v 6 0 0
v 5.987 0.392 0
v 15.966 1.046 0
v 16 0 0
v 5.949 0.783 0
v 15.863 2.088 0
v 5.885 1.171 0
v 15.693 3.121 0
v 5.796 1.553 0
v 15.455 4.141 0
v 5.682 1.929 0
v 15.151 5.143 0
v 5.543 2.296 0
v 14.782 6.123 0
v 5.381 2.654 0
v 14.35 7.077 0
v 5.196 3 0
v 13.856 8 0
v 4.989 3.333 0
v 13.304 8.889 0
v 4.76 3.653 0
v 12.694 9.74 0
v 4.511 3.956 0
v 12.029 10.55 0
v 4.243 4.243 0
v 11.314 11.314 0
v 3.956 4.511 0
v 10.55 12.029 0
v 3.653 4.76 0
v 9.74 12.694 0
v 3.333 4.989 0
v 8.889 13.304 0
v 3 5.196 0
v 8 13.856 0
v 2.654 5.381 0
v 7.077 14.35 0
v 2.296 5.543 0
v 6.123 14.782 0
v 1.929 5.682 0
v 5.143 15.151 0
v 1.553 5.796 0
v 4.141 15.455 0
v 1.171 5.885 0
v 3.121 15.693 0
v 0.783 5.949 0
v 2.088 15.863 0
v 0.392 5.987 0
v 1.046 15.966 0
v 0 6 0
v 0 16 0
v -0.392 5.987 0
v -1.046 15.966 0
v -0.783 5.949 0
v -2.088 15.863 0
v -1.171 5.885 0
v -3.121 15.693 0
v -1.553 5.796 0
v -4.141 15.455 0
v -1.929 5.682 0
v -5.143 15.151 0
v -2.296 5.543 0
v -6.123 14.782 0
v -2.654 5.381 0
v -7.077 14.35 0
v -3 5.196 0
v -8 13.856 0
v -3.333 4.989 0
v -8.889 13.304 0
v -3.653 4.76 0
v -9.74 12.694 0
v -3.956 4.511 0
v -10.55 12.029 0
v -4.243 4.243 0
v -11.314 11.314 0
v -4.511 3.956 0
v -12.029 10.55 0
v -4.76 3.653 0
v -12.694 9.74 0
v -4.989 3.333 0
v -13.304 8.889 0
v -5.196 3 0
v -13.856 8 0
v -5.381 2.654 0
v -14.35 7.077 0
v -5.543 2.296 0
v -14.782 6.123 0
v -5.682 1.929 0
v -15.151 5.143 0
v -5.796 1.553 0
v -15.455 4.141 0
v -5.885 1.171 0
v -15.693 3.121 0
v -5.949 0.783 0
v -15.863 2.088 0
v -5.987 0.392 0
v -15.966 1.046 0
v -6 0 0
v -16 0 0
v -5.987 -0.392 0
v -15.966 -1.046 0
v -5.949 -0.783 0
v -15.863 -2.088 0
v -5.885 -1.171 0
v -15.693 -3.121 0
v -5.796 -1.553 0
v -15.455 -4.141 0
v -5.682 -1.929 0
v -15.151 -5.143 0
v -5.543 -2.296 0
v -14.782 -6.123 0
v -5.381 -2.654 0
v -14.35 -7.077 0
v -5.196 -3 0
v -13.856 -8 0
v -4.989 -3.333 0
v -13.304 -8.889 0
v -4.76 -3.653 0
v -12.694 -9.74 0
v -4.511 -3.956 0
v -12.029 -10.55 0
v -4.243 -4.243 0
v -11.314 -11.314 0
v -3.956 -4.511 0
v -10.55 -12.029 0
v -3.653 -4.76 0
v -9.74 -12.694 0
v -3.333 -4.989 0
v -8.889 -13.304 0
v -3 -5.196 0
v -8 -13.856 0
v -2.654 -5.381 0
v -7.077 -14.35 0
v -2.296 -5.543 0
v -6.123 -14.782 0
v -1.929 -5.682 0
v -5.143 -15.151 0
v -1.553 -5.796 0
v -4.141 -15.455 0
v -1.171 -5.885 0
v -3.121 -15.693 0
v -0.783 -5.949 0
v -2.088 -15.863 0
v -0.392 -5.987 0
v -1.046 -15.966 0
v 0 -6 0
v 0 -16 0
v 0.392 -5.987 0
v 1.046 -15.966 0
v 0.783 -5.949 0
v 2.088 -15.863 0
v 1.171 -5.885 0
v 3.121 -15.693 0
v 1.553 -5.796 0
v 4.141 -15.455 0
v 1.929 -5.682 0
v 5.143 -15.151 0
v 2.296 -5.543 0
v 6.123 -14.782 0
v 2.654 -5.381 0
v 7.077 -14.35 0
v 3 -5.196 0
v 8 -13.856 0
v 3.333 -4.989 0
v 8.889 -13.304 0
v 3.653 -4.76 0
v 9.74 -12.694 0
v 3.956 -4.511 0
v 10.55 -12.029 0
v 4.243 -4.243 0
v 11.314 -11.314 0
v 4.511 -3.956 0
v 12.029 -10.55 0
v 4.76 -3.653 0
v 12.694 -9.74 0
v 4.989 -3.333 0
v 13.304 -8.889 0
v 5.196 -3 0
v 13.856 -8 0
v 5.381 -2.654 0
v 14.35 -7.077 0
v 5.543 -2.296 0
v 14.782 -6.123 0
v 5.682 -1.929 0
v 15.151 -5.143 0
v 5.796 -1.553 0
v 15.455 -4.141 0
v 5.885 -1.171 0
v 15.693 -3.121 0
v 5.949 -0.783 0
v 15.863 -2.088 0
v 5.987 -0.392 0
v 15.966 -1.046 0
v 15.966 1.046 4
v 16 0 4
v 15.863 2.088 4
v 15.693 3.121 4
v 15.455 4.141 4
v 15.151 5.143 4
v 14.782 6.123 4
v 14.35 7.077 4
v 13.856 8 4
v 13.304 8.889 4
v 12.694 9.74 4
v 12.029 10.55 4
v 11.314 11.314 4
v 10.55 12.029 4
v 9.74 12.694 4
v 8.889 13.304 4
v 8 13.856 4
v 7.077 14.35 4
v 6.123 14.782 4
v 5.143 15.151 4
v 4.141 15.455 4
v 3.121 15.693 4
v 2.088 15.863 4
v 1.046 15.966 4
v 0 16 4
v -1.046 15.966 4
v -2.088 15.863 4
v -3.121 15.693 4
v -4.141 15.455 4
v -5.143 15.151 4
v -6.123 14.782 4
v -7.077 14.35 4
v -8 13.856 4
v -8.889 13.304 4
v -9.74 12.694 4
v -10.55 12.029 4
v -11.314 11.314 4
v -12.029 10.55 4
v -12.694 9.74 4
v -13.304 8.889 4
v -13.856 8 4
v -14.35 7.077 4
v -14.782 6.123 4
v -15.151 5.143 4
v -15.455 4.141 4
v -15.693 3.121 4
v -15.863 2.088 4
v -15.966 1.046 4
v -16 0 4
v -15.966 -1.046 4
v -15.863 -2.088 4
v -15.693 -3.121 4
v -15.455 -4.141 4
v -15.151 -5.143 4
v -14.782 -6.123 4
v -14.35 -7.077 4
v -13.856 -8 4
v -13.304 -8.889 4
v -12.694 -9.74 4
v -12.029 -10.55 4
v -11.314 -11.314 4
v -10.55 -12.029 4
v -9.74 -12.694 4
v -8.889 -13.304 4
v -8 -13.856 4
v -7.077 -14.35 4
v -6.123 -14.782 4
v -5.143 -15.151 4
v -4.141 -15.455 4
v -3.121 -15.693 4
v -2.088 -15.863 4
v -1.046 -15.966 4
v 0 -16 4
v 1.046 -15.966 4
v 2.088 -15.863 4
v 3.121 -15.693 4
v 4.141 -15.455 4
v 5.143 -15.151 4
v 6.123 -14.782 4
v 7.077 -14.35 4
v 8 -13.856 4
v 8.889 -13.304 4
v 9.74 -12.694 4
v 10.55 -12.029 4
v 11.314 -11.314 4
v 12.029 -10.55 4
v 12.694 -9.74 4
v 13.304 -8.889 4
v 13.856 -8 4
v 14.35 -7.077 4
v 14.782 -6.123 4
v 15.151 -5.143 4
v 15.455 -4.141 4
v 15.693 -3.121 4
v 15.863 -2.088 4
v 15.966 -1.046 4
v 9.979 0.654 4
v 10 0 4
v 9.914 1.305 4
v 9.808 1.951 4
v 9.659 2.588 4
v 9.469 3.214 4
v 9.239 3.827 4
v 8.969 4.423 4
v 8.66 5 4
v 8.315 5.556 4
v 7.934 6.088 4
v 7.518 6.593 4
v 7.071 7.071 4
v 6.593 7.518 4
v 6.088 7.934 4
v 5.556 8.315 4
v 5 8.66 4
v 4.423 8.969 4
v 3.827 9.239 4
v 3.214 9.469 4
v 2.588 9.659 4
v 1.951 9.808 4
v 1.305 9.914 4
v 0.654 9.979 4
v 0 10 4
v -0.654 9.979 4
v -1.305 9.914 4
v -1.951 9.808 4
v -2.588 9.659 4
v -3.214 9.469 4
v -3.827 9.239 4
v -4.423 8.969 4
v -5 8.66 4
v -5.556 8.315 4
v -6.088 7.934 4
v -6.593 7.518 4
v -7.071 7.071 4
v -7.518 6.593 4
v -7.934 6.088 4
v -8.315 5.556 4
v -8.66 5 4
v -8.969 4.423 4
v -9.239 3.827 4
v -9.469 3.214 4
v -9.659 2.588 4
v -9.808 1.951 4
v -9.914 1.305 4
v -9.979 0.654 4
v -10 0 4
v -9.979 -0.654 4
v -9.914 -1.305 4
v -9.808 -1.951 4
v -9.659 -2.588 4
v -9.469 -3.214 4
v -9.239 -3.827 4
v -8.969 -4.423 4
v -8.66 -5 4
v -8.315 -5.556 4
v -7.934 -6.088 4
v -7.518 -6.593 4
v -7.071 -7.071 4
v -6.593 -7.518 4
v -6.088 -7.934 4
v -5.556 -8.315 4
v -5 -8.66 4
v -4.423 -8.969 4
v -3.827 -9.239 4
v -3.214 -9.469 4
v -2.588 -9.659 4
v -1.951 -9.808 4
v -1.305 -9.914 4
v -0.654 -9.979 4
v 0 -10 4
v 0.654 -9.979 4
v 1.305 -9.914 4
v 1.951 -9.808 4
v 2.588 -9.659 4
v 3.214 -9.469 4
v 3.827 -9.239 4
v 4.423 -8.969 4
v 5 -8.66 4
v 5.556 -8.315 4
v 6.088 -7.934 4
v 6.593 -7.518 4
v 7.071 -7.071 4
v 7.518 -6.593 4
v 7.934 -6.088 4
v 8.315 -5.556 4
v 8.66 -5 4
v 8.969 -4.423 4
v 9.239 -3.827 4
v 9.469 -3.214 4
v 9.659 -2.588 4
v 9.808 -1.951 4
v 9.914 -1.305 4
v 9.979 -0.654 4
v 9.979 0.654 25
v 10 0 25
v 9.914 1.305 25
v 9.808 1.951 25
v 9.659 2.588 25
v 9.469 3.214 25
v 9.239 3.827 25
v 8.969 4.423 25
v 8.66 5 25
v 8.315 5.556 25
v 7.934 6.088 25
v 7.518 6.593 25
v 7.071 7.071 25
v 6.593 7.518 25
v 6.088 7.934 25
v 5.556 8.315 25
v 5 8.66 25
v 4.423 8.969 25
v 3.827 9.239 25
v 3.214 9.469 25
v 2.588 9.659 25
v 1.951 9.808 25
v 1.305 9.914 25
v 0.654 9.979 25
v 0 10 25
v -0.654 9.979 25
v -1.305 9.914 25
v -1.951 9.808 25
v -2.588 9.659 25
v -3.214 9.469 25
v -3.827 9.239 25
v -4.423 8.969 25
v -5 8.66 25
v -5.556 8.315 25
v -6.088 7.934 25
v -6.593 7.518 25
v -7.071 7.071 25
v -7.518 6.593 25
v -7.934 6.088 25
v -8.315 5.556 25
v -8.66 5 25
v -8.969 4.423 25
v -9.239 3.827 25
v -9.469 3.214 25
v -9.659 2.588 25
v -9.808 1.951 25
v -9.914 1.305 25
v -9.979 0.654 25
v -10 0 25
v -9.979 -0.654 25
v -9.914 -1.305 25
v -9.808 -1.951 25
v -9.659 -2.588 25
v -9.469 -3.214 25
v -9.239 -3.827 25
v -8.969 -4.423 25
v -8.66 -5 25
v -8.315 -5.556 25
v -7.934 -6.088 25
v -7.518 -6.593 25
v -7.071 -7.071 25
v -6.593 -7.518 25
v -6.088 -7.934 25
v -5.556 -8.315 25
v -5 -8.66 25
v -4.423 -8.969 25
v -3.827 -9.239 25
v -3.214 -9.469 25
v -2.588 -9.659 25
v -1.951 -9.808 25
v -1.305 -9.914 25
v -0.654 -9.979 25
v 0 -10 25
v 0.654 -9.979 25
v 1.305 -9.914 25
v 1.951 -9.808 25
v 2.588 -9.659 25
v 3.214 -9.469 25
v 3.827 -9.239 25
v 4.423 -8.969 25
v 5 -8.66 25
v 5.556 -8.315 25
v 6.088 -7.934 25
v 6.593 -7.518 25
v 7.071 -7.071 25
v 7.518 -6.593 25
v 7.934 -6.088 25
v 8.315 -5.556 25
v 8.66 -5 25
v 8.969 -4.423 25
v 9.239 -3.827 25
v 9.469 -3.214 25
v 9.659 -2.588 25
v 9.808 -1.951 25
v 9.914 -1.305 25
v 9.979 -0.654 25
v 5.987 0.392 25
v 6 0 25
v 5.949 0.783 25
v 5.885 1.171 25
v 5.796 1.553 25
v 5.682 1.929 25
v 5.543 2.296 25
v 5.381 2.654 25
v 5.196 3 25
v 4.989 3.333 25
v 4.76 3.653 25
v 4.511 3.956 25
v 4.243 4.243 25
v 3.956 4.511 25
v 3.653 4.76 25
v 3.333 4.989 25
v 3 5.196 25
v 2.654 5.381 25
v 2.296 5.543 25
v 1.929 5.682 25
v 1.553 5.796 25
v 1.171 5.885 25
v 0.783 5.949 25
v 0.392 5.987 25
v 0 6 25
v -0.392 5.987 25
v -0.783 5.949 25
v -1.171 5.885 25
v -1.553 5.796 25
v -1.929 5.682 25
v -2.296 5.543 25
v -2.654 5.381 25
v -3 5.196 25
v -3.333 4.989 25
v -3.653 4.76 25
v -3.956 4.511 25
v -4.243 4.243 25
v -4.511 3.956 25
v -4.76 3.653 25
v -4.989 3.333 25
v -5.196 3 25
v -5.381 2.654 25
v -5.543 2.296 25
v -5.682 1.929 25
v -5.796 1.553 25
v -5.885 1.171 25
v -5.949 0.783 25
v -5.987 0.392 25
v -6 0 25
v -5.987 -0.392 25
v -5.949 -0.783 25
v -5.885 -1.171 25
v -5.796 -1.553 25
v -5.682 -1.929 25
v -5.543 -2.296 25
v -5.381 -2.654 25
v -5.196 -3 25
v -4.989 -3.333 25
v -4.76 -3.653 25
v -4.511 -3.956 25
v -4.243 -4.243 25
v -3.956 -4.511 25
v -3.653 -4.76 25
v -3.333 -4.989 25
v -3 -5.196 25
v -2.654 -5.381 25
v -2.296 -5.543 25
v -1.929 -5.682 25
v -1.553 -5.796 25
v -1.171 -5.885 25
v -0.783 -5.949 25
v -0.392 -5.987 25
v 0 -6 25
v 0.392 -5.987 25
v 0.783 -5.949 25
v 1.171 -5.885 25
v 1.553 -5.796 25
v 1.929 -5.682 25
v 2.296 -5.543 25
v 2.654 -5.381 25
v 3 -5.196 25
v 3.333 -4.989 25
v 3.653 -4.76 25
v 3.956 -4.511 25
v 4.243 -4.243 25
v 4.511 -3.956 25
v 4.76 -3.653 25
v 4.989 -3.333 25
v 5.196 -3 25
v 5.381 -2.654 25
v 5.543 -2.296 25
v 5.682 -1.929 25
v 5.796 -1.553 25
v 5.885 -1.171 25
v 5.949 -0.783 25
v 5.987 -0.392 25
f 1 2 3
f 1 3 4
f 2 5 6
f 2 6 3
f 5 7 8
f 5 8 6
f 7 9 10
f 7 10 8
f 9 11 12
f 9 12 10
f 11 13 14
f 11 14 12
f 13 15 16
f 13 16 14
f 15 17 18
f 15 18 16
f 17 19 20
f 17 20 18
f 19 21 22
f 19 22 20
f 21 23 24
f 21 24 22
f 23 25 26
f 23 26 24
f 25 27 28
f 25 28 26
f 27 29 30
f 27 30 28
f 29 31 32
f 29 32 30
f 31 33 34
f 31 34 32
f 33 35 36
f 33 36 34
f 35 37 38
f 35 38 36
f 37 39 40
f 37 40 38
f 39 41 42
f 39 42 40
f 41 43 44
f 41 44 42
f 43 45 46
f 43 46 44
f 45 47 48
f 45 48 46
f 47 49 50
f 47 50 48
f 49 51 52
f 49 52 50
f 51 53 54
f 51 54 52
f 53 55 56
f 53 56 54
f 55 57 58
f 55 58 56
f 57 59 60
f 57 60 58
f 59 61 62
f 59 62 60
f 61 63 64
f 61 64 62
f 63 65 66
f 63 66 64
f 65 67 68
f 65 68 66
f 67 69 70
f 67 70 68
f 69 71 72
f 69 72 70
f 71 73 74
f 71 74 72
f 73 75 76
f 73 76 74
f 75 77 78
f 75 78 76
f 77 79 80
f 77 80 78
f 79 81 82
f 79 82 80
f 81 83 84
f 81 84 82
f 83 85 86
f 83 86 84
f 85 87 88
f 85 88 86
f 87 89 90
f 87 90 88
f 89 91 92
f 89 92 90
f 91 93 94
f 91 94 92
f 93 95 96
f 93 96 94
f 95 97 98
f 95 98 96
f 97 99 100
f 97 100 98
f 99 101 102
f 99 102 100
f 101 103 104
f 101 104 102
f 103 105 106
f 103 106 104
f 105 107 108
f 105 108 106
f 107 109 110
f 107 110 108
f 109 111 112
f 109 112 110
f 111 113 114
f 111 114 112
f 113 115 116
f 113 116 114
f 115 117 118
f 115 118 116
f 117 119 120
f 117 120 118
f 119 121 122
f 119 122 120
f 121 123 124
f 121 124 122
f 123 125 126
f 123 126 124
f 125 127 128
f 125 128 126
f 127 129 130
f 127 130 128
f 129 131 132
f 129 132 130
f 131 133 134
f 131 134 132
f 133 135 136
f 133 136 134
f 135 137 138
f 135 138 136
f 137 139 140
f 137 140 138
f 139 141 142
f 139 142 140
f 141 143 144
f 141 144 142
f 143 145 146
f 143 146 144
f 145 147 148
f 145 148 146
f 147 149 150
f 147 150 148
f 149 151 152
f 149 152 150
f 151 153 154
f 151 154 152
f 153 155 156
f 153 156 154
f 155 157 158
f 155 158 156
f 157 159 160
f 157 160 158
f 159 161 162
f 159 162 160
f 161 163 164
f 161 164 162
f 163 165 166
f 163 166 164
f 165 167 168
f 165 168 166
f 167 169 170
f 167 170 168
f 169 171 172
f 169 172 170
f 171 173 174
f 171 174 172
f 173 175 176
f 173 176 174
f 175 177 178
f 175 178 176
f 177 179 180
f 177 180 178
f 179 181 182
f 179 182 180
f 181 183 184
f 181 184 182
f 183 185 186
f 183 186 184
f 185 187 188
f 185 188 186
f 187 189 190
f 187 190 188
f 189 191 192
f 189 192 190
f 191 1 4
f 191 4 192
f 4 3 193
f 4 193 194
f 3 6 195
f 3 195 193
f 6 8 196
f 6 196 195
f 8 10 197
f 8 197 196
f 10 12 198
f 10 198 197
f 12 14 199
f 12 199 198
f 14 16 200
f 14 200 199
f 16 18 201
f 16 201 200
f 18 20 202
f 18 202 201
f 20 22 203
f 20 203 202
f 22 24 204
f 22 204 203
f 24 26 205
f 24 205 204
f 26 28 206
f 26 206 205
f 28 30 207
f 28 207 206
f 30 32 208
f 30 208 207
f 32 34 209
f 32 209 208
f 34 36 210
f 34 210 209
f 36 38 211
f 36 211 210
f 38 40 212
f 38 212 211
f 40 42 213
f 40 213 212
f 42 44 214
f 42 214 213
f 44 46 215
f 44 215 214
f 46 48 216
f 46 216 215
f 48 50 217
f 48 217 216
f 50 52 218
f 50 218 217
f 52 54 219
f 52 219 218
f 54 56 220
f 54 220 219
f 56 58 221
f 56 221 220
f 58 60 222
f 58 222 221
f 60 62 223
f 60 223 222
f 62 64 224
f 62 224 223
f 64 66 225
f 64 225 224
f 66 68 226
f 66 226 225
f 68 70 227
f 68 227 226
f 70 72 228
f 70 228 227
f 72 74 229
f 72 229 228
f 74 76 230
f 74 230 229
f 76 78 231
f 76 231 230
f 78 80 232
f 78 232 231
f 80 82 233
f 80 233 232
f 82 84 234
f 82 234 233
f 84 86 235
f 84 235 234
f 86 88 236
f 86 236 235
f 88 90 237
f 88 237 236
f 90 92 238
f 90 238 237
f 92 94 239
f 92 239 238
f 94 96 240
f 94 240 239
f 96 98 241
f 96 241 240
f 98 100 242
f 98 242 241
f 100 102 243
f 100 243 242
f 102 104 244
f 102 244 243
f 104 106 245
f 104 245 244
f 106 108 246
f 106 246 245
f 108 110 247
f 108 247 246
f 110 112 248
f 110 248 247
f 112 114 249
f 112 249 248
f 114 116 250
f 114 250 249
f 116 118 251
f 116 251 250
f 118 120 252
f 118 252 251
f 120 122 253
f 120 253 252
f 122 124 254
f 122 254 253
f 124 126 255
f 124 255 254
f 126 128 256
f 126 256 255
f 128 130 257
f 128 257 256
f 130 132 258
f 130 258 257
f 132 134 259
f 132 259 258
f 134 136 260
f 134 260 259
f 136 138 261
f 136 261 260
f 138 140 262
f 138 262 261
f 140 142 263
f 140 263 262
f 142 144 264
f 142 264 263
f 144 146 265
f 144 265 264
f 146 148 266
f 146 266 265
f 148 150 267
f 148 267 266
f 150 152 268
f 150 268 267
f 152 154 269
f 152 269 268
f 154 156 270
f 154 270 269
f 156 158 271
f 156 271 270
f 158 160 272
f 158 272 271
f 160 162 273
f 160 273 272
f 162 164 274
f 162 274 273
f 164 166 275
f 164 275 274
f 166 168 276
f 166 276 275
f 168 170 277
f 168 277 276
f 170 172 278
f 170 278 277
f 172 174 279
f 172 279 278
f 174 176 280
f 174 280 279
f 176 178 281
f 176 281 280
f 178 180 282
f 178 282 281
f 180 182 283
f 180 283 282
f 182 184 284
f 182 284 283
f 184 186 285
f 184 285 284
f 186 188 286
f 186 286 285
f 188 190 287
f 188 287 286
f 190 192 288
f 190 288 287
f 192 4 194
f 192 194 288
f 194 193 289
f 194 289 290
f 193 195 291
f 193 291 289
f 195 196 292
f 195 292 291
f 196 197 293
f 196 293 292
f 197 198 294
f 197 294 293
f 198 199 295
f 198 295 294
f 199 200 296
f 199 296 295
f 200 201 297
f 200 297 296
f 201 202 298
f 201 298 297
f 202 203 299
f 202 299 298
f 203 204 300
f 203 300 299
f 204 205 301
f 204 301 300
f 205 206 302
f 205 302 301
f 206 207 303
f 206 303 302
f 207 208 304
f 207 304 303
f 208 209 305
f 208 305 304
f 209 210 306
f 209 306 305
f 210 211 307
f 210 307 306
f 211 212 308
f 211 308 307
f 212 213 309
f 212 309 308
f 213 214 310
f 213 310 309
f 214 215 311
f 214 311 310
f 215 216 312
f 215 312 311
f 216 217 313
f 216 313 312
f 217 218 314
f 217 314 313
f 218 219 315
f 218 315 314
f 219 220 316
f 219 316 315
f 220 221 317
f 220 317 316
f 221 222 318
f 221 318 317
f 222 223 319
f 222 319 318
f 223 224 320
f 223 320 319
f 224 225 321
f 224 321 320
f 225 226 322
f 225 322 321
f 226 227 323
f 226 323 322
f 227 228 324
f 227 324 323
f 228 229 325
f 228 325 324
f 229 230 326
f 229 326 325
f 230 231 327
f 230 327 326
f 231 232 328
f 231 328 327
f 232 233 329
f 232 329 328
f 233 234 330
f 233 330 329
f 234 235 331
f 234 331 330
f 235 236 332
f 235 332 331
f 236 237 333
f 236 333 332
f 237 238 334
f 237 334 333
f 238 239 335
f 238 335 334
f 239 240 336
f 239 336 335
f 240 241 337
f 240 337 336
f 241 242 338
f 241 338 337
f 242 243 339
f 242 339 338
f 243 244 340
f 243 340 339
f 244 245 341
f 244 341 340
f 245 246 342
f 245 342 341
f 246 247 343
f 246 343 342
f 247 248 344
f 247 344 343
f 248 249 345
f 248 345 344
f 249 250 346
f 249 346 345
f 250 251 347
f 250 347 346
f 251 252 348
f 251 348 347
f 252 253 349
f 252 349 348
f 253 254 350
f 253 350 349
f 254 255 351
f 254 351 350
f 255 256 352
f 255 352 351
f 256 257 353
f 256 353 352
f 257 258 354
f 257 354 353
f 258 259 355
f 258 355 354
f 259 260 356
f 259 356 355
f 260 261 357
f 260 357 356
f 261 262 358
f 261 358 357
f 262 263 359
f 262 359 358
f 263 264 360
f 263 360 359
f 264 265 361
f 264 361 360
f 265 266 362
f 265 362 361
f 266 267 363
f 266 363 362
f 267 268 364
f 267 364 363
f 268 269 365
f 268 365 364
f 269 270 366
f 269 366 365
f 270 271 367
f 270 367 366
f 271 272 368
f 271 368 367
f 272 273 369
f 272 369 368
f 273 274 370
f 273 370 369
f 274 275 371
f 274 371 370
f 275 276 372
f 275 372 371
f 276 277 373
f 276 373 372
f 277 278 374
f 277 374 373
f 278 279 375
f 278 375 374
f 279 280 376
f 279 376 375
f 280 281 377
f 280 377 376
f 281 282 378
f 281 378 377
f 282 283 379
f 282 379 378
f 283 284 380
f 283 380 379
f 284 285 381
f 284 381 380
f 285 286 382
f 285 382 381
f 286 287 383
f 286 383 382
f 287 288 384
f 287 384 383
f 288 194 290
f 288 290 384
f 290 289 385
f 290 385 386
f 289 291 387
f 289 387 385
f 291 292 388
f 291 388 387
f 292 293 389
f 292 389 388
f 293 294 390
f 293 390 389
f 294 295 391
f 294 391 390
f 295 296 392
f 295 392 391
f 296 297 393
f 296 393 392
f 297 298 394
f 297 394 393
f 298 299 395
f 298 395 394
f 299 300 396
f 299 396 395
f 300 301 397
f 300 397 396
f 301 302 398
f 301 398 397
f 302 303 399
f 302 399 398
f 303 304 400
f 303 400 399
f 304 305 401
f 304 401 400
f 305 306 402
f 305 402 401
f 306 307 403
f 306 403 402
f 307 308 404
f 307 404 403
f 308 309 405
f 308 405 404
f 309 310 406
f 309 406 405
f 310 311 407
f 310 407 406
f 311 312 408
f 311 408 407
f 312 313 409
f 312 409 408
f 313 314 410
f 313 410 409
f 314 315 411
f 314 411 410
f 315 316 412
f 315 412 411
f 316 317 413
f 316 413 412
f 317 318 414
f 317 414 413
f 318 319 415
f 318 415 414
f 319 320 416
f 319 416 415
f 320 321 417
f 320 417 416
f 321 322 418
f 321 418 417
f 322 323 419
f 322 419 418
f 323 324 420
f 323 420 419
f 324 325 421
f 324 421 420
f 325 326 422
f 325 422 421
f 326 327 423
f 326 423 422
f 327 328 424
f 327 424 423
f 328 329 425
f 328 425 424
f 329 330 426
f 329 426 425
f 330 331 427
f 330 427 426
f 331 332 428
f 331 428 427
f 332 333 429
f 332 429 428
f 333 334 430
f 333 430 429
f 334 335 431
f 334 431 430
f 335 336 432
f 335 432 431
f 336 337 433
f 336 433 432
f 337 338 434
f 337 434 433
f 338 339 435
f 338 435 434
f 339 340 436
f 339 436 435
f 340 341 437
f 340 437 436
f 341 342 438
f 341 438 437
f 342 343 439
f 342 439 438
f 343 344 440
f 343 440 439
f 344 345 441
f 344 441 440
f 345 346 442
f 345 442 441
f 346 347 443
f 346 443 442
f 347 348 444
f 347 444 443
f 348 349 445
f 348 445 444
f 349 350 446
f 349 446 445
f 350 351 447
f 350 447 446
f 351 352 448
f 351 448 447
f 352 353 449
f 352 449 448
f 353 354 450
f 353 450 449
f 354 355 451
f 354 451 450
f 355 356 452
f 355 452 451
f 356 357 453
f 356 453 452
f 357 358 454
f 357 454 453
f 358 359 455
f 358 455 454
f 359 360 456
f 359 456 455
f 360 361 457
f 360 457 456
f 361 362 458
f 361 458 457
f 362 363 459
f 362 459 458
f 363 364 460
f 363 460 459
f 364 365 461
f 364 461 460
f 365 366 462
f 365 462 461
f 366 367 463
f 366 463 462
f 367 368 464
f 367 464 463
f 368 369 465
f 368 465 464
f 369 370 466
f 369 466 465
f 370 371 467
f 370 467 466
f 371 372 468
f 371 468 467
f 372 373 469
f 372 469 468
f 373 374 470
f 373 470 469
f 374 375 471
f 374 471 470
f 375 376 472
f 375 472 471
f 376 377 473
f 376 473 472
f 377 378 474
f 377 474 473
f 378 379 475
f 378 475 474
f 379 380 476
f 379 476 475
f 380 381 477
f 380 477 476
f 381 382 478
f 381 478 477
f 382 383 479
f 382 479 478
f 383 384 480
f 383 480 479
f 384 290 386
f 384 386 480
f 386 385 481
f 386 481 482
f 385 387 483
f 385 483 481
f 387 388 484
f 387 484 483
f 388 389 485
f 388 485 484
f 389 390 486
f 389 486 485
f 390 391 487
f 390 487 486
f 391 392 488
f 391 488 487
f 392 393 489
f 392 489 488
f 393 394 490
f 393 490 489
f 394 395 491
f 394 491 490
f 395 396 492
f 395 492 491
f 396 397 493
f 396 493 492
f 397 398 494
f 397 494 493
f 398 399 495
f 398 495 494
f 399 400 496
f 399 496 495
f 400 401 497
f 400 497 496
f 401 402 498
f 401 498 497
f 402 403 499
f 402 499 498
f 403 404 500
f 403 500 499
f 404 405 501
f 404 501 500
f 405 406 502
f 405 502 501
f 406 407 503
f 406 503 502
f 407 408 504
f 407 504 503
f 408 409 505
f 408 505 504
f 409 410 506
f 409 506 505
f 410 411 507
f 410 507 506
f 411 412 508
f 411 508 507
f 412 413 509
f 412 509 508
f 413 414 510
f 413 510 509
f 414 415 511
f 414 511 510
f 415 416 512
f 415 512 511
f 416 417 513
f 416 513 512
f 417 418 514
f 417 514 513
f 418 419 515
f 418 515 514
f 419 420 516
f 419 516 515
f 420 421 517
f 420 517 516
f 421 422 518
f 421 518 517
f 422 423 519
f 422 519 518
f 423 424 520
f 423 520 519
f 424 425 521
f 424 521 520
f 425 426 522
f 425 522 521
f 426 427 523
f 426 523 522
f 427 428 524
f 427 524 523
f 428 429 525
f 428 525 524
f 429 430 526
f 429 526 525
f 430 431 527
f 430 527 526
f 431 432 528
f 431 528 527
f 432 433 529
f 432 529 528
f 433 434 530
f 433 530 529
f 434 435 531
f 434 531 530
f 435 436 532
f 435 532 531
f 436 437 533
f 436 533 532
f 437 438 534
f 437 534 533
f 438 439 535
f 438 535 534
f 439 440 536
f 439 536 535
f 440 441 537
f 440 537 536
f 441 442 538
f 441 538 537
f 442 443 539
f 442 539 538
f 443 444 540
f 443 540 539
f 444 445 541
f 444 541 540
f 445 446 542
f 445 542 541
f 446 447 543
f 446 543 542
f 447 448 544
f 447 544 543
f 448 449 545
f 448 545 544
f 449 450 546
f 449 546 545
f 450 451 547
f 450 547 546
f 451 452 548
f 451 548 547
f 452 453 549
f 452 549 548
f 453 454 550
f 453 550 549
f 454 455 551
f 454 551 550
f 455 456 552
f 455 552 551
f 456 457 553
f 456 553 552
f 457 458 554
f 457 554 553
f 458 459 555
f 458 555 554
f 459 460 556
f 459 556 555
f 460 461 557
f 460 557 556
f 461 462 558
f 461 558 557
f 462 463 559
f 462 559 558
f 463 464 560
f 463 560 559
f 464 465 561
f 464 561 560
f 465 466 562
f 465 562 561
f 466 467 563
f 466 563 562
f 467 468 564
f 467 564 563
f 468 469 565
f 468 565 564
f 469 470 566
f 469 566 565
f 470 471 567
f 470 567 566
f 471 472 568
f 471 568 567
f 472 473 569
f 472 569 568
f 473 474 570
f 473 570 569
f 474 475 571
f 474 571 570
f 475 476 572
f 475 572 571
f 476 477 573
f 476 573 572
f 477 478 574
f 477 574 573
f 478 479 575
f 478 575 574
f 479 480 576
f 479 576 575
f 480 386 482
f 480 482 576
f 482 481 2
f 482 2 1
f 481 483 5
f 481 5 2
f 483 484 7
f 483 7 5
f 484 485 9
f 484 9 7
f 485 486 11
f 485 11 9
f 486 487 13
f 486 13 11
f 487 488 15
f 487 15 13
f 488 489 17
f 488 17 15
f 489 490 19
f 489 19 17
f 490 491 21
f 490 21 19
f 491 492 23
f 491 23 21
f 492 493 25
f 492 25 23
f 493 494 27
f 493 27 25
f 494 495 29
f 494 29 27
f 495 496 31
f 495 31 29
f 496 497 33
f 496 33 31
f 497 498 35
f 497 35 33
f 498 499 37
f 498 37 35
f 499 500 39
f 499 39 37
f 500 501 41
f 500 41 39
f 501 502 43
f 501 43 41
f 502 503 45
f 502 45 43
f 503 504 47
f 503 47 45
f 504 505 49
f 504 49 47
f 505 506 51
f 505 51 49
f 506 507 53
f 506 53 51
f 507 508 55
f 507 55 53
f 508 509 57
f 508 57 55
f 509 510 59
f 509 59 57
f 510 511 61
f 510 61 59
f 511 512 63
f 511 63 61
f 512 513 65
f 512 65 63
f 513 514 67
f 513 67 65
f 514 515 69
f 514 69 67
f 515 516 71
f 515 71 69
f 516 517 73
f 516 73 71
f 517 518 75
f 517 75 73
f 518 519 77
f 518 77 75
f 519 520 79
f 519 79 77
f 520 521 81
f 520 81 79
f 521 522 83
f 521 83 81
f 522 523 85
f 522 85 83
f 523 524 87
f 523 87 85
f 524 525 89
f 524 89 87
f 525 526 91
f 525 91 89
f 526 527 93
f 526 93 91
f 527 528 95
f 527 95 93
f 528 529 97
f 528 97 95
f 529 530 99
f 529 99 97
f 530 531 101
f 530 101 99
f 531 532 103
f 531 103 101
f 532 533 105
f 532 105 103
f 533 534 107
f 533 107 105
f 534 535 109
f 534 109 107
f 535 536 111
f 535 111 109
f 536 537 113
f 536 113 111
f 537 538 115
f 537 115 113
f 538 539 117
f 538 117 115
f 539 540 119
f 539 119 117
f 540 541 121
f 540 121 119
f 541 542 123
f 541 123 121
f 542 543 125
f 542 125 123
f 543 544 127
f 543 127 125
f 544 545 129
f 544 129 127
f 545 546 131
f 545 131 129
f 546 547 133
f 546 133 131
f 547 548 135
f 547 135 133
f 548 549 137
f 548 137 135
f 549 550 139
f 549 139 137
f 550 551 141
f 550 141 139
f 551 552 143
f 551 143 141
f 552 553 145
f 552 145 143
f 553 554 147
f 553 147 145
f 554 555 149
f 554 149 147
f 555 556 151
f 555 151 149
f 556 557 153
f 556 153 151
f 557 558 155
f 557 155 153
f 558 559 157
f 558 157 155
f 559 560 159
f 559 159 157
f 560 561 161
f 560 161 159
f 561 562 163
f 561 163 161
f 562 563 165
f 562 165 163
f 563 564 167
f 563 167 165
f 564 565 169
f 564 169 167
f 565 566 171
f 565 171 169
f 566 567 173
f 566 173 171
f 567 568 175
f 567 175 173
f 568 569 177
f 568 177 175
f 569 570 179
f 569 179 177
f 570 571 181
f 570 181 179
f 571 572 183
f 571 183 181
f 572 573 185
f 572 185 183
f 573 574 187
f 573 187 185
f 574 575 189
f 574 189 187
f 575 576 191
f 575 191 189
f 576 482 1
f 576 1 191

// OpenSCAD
// Original MechIntel educational model. CC0-1.0. Units: mm.
// Not a standardized or load-rated component.
$fn=96;
// Section points: [radius, height], mm. Edit to change the profile.
section=[[6, 0], [16, 0], [16, 4], [10, 4], [10, 25], [6, 25]];
rotate_extrude($fn=96) polygon(points=section);
